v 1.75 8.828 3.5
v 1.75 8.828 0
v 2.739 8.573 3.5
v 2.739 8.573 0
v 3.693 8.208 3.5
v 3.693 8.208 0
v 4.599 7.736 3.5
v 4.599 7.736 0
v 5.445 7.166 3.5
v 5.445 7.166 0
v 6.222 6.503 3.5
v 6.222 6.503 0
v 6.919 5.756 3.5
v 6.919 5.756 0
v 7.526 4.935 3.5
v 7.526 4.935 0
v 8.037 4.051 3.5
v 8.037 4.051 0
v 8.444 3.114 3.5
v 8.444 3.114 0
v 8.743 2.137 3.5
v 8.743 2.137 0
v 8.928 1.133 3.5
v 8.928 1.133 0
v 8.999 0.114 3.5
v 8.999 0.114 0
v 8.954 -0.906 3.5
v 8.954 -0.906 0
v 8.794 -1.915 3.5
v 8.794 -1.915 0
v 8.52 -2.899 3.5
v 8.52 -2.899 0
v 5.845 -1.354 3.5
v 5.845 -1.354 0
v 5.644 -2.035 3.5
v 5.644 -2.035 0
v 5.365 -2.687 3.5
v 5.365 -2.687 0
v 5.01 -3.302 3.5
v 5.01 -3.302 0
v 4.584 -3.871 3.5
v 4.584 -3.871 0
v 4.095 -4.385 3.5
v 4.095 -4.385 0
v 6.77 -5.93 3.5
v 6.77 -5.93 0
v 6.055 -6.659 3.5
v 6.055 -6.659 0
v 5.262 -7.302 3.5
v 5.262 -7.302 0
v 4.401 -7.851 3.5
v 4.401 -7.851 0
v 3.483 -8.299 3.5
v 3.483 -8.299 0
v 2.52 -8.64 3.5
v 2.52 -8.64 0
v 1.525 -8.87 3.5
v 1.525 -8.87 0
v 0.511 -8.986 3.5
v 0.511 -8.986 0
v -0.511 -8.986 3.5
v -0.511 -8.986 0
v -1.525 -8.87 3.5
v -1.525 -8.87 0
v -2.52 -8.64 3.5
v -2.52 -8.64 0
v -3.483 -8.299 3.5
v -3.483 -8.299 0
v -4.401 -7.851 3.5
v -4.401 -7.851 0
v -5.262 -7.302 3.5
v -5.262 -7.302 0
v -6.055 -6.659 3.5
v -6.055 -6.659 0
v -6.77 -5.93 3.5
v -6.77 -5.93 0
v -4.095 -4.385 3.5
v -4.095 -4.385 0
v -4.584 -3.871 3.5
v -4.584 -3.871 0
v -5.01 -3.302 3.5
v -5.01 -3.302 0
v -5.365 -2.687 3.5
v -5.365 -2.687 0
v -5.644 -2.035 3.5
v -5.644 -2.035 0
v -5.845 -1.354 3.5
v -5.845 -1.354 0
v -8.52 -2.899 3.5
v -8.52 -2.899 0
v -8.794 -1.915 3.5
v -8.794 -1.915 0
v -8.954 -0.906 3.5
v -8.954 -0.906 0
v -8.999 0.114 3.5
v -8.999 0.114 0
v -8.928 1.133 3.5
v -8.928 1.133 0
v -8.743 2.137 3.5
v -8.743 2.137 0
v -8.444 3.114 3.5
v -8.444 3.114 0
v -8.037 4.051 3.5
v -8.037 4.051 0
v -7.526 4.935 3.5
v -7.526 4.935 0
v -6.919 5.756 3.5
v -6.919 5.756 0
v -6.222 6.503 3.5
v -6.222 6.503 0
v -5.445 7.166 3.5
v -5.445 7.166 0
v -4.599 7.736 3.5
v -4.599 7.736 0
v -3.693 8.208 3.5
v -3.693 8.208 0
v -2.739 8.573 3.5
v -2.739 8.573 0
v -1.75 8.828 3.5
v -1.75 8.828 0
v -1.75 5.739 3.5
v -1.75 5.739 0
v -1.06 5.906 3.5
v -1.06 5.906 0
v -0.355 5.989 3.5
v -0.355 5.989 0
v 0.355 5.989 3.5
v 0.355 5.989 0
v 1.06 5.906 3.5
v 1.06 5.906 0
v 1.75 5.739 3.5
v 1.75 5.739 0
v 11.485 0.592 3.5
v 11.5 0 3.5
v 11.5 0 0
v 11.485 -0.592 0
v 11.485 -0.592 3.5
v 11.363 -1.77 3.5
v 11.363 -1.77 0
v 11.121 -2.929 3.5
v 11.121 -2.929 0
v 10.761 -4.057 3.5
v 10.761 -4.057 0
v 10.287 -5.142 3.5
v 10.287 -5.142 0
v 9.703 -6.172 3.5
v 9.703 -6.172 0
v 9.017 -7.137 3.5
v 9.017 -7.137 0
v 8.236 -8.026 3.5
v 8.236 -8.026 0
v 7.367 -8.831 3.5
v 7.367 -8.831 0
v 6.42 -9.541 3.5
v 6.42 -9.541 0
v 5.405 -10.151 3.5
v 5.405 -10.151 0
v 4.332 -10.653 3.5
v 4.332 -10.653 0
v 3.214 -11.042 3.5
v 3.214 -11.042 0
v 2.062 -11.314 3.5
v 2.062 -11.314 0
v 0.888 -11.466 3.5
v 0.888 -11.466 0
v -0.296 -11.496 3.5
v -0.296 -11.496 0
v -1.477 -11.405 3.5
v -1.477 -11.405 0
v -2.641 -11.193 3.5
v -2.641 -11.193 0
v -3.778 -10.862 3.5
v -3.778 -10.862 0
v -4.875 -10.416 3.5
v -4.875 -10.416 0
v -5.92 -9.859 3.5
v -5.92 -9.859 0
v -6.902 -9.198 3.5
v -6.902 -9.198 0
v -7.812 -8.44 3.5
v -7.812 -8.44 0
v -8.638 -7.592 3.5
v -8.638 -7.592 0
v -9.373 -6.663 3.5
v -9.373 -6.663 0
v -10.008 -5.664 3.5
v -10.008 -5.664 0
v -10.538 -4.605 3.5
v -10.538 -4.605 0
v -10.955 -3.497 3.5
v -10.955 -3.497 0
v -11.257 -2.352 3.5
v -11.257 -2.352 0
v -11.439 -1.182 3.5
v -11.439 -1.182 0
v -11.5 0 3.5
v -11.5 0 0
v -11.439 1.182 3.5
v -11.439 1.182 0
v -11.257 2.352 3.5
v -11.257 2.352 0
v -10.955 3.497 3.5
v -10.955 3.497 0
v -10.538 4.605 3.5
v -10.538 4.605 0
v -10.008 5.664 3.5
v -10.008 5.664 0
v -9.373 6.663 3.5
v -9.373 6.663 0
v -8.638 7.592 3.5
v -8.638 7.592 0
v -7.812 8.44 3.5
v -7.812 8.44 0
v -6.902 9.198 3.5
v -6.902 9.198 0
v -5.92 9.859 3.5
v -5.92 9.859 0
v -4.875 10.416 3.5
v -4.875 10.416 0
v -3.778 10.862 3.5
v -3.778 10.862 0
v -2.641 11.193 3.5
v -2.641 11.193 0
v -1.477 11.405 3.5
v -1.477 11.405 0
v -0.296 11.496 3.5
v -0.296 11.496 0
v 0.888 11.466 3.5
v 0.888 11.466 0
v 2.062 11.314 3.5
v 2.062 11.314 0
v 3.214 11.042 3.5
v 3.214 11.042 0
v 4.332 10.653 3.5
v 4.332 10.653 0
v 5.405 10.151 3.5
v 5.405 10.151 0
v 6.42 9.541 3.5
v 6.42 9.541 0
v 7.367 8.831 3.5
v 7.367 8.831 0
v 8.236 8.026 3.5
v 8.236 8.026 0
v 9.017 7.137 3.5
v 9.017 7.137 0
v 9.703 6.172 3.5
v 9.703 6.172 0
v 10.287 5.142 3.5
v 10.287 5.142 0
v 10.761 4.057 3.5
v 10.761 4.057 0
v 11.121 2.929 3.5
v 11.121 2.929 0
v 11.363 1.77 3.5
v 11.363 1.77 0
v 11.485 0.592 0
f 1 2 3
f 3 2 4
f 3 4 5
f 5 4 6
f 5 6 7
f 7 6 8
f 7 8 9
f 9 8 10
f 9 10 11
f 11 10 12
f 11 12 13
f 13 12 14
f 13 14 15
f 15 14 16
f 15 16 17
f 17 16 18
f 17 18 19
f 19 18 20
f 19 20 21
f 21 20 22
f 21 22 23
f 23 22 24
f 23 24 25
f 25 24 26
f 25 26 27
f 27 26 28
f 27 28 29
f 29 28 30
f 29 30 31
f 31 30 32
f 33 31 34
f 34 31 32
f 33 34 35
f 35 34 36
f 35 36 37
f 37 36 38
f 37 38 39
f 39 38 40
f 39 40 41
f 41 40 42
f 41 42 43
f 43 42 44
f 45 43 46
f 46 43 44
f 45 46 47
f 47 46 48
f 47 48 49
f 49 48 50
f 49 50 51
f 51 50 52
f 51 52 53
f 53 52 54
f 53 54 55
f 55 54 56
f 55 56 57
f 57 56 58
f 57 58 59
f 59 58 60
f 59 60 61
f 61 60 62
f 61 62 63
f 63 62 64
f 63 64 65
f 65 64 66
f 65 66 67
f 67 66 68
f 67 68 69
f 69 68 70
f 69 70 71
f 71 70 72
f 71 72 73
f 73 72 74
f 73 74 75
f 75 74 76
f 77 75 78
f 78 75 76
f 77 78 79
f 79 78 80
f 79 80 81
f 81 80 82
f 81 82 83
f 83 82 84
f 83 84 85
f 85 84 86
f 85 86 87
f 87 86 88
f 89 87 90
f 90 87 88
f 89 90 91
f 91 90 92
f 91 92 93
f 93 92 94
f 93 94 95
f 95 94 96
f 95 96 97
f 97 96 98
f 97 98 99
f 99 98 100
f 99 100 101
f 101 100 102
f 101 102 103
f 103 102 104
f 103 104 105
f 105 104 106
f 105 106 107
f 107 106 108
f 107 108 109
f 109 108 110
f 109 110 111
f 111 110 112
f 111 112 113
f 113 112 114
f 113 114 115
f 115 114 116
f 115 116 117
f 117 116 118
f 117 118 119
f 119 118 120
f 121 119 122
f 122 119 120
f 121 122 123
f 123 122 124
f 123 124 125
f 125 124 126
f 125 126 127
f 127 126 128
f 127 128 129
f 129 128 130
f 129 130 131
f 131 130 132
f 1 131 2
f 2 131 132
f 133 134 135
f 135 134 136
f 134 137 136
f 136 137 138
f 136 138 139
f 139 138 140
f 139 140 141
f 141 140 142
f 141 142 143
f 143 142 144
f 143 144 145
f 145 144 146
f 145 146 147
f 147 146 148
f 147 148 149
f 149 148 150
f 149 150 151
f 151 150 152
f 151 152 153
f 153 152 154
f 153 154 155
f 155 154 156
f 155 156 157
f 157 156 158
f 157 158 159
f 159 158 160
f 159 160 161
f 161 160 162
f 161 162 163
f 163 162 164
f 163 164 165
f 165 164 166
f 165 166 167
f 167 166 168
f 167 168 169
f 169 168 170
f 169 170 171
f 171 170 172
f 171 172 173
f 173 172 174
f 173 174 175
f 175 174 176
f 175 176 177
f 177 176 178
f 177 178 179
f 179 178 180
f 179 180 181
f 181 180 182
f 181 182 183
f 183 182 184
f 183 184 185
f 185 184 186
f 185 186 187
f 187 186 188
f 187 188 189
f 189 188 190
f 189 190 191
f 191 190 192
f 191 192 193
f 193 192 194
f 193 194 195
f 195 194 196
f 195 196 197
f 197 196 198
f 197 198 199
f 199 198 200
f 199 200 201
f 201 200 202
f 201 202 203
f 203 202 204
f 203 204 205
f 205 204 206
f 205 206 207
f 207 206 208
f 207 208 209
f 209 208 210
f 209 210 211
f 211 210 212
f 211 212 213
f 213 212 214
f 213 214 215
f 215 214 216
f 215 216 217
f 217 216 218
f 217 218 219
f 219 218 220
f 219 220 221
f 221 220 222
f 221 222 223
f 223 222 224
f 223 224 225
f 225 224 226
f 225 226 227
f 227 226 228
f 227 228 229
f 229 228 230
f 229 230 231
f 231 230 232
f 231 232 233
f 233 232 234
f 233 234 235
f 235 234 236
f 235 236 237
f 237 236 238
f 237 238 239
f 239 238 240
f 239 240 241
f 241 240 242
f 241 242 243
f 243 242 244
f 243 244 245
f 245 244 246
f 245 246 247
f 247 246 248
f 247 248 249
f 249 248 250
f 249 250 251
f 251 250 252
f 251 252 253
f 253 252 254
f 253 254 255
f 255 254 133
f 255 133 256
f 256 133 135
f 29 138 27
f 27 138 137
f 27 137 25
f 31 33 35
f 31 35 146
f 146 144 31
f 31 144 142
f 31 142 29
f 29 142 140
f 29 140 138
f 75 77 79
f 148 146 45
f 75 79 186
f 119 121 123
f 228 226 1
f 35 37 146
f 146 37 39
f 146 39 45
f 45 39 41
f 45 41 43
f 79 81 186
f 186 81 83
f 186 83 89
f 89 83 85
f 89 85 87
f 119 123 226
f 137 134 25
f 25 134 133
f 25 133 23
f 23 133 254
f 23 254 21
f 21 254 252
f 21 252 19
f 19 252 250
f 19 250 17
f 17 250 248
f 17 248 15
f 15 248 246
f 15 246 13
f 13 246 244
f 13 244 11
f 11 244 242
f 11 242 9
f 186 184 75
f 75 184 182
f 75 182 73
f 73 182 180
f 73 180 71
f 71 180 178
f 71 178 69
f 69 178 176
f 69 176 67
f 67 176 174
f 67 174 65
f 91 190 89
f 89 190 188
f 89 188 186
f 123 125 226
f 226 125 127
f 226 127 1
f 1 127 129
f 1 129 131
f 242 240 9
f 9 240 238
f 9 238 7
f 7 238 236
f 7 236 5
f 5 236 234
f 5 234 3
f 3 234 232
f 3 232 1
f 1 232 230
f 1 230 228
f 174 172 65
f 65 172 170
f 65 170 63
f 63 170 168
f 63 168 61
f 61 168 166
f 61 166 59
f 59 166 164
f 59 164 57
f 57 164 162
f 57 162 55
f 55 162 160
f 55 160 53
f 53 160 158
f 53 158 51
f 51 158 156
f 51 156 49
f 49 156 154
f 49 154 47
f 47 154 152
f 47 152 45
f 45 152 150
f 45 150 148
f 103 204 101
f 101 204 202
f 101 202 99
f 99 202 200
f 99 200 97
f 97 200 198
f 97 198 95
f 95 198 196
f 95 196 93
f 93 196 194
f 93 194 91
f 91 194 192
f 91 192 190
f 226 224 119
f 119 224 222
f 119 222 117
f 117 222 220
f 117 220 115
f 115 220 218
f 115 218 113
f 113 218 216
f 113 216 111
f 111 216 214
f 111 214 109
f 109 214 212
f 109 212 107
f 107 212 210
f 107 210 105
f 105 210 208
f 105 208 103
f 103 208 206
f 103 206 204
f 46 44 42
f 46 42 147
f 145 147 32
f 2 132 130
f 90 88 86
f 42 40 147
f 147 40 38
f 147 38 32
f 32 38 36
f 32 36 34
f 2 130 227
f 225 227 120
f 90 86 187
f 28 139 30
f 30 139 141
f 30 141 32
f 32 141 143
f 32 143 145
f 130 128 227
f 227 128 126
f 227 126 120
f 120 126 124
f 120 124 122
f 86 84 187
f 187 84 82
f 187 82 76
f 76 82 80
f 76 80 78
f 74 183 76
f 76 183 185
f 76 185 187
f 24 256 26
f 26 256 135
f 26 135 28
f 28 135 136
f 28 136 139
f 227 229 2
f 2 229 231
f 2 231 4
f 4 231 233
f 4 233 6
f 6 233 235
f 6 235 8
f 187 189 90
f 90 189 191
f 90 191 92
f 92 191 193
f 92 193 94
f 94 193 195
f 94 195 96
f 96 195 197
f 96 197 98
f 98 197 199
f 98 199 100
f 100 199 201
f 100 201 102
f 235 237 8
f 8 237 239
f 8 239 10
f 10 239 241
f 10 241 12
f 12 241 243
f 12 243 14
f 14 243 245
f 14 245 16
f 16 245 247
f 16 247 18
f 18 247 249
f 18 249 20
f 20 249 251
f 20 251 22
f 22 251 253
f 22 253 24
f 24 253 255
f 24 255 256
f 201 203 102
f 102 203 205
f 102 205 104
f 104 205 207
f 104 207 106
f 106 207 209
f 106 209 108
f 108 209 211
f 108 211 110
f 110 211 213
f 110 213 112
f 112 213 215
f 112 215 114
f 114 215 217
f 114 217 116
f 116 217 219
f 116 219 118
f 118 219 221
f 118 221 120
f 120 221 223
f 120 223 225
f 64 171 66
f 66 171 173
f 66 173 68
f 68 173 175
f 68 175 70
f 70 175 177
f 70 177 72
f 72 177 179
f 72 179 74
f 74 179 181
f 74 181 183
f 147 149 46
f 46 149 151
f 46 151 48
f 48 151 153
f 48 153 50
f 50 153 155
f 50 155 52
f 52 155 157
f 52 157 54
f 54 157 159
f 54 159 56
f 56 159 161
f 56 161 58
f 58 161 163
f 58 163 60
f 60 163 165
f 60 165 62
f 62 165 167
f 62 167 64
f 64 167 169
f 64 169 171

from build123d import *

# Parameters (mm, degrees)
SKETCH1_R           = 11.5
SKETCH1_R_2         = 9
BOSS_EXTRUDE1_DEPTH = 3.5


with BuildPart() as part:
    # Sketch1 → Boss-Extrude1 (new body)
    # profile 1 of 4: a face of its own
    with BuildSketch(Plane.XY):
        Circle(SKETCH1_R)
        Circle(SKETCH1_R_2, mode=Mode.SUBTRACT)
    # profile 2 of 4: a face of its own
    with BuildSketch(Plane.XY):
        with BuildLine():
            Line((1.75, 5.739120142), (1.75, 8.828221792))
            ThreePointArc((1.75, 8.828221792), (0, 9), (-1.75, 8.828221792))
            Line((-1.75, 8.828221792), (-1.75, 5.739120142))
            ThreePointArc((-1.75, 5.739120142), (0, 6), (1.75, 5.739120142))
        make_face()
    # profile 3 of 4: a face of its own
    with BuildSketch(Plane.XY):
        with BuildLine():
            ThreePointArc((-8.520464342, -2.898566439), (-7.794228634, -4.5), (-6.770464342, -5.929655352))
            Line((-6.770464342, -5.929655352), (-4.095223838, -4.385104527))
            ThreePointArc((-4.095223838, -4.385104527), (-5.196152423, -3), (-5.845223838, -1.354015614))
            Line((-5.845223838, -1.354015614), (-8.520464342, -2.898566439))
        make_face()
    # profile 4 of 4: a face of its own
    with BuildSketch(Plane.XY):
        with BuildLine():
            ThreePointArc((6.770464342, -5.929655352), (7.794228634, -4.5), (8.520464342, -2.898566439))
            Line((8.520464342, -2.898566439), (5.845223838, -1.354015614))
            ThreePointArc((5.845223838, -1.354015614), (5.196152423, -3), (4.095223838, -4.385104527))
            Line((4.095223838, -4.385104527), (6.770464342, -5.929655352))
        make_face()
    extrude(amount=BOSS_EXTRUDE1_DEPTH)


solid = part.part
